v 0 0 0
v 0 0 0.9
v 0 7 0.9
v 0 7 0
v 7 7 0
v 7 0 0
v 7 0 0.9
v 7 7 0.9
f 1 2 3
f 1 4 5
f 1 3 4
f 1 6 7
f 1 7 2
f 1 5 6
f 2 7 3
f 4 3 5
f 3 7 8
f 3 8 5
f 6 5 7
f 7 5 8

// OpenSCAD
/* Warning, this is a very basic generator with a lot of approximation 
input data : [VQFN, VUX, 7x7x0.9mm, 56, , B, C04-00350B]
generated by com.zoubworld.electronics.cad.model3d.Basic
Date : Sun Feb 15 10:50:48 CET 2026
*/

//body
color("black")
translate([0,0,0])
cube([7.0,7.0,0.9], center=false);
